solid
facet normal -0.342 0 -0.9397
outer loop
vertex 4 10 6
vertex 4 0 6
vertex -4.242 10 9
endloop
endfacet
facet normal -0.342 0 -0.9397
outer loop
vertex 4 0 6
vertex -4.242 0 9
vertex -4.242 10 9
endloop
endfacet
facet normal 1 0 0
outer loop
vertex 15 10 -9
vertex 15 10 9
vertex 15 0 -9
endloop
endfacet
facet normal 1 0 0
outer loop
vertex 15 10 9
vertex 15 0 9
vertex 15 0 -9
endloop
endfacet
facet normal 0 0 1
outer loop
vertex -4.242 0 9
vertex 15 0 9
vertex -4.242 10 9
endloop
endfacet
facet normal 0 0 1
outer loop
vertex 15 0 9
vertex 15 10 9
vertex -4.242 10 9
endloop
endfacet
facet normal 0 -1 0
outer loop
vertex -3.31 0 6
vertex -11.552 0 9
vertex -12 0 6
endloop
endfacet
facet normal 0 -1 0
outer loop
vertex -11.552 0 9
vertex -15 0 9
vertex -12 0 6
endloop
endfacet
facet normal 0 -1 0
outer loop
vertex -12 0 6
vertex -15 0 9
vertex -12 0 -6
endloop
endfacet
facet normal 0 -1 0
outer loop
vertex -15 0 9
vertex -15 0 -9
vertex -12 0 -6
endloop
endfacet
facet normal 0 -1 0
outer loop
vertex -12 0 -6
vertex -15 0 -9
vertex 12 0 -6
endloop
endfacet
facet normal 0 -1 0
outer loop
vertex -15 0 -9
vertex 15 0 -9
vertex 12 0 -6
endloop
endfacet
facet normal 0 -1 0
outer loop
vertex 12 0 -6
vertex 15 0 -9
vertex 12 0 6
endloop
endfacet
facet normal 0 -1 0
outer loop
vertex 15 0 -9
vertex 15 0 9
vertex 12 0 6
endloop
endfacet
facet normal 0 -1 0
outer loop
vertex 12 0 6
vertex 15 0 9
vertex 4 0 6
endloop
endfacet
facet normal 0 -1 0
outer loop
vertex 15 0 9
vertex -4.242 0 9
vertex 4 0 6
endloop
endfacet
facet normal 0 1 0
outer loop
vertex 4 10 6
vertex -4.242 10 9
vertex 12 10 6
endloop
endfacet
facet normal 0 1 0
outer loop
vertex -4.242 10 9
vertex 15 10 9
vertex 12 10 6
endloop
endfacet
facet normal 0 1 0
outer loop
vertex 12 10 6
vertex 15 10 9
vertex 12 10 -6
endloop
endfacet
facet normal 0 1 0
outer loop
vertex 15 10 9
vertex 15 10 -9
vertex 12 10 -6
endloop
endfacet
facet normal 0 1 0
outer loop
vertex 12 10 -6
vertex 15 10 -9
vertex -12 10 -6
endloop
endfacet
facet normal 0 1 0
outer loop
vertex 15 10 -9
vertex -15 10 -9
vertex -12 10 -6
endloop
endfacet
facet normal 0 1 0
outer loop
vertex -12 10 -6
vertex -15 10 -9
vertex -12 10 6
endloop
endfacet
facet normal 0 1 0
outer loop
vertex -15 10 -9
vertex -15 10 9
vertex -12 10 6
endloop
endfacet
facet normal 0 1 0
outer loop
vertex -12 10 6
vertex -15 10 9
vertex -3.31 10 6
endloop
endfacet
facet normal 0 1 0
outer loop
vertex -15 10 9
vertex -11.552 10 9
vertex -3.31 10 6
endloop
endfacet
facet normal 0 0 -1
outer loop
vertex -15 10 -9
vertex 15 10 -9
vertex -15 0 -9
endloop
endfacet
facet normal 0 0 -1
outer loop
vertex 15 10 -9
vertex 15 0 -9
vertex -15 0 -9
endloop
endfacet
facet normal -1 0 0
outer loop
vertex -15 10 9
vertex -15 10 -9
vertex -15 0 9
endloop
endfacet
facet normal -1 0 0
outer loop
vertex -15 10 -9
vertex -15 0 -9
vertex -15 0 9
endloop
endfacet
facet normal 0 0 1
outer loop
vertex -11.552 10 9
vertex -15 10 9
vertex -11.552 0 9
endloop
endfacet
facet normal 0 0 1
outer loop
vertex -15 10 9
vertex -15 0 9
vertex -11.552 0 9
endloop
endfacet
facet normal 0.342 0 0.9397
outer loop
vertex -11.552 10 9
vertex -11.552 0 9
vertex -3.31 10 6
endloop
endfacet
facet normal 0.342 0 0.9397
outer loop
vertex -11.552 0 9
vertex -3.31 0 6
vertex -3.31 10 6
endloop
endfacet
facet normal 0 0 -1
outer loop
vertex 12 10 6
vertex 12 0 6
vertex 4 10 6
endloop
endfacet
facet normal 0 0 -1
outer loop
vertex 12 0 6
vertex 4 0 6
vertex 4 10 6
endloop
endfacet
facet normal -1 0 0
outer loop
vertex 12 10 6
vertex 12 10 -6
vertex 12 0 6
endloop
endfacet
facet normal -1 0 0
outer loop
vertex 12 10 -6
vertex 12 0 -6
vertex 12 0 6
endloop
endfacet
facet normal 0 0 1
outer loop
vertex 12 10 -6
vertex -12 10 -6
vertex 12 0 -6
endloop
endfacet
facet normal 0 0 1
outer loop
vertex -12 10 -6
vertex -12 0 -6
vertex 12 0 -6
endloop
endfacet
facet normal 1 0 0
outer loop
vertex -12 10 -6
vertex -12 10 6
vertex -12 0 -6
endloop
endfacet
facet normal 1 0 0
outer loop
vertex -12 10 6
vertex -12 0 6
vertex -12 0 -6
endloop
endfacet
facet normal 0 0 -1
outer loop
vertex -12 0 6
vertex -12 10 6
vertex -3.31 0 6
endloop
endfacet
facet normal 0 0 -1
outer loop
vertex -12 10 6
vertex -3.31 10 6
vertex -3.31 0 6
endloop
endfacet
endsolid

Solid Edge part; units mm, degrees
sketch "Sketch1" plane through (0, 0, 0) normal (0, -1, 0) x (1, 0, 0)
  line L0 (-12, -6) -> (12, -6)
  line L1 (12, -6) -> (12, 6)
  line L2 (12, 6) -> (-12, 6)
  line L3 (-12, 6) -> (-12, -6)
  line L4 (-15, -9) -> (15, -9)
  line L5 (15, -9) -> (15, 9)
  line L6 (15, 9) -> (-15, 9)
  line L7 (-15, 9) -> (-15, -9)
  dimension "D1" = 30
  dimension "D2" = 18
  dimension "D3" = 12
  dimension "D4" = 24
extrude "body" add sketch "Sketch1" against normal blind 10
sketch "Sketch2" plane through (0, 10, 0) normal (0, 1, 0) x (0, 0, -1)
  line L0 (-9, 11.5519) -> (-6, 3.3095)
  line L1 (-6, 3.3095) -> (-6, -4)
  line L2 (-6, -4) -> (-9, 4.2424)
  line L3 (-9, 4.2424) -> (-9, 11.5519)
  dimension "D1" = 2.5
  dimension "D2" = 8
extrude "Cutout1" cut sketch "Sketch2" against normal through all
properties material "Polyethylene, low density"
